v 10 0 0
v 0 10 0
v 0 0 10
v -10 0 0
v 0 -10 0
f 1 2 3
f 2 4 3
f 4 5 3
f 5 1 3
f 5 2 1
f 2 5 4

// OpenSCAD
echo(version=version());

polyhedron(
  points = [
    [10, 0, 0],
    [0, 10, 0],
    [-10, 0, 0],
    [0, -10, 0],
    [0, 0, 10]
  ],
  triangles = [
    [0, 1, 2, 3],
    [4, 1, 0],
    [4, 2, 1],
    [4, 3, 2],
    [4, 0, 3]
  ]
);
